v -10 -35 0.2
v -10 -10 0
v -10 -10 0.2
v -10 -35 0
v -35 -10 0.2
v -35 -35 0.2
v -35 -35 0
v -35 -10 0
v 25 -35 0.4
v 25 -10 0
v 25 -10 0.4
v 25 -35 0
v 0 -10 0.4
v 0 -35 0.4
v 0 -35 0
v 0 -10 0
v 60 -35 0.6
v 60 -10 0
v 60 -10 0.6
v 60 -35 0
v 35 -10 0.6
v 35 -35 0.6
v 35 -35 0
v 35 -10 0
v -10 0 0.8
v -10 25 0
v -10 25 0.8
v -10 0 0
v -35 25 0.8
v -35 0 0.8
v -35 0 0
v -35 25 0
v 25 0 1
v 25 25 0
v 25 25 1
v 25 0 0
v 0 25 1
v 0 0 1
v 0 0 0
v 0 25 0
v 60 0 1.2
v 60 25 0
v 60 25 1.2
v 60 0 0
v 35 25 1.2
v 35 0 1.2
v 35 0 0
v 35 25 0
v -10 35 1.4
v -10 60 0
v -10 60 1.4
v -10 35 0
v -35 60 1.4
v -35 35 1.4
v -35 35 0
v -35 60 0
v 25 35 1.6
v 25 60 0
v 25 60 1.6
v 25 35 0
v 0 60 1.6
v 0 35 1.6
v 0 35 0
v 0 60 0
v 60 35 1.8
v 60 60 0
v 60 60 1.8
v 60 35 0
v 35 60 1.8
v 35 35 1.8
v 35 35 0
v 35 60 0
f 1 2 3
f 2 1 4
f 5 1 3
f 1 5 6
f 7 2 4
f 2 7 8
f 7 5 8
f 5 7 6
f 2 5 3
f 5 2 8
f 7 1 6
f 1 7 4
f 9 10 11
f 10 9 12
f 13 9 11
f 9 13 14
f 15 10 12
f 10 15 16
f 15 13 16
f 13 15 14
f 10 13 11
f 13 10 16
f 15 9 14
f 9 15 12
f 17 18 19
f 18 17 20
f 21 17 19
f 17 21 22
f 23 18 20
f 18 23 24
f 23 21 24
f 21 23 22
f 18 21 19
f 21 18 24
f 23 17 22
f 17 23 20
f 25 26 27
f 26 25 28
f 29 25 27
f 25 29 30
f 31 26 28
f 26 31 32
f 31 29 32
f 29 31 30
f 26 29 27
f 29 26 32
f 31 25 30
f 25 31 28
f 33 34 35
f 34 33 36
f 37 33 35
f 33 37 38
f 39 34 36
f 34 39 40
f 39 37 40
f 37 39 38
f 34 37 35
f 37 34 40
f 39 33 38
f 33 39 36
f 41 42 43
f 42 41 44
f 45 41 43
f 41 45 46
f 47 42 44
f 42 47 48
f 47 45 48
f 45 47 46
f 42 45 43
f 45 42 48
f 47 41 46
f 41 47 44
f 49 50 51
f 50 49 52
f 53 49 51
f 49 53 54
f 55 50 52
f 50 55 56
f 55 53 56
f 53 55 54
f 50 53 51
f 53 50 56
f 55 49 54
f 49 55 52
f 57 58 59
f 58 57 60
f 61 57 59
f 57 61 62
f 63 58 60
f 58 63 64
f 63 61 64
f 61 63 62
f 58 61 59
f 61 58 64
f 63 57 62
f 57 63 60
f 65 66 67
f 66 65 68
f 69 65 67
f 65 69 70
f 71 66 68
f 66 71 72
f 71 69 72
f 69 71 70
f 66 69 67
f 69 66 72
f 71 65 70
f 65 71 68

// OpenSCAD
module test_square(stiffness) {
    cube([25, 25, stiffness]);
}

for (i = [
        [0.2, [-35, -35, 0]], [0.4, [0, -35, 0]], [0.6, [35, -35, 0]],
        [0.8, [-35,   0, 0]], [1.0, [0,   0, 0]], [1.2, [35,   0, 0]],
        [1.4, [-35,  35, 0]], [1.6, [0,  35, 0]], [1.8, [35,  35, 0]],
    ]) {
    stiffness = i[0];
    offset = i[1];
    translate(offset) test_square(stiffness = stiffness);
}
